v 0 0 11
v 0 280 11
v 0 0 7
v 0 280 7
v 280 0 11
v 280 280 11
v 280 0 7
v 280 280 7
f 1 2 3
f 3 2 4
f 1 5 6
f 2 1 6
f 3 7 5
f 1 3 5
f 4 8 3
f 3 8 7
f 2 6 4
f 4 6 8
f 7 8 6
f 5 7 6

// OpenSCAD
// file: lulzbot_generic_components.scad
$fn = 50;

module wiper(
	x = 10,
	y = 10,
	z = 3
) {
	translate([x, y, z]){
		import("wiper_mount_v1.1.stl");

		//wiper pad itself
		translate([5, 5, 0]){
			cube(size = [90, 6.5, 12.5], center = false);
		}
	}
}

module auto_leveling_bed_corner(
	x = 0,
	y = 0,
	z = 11,
	inner_radius = 1.7,
	outer_radius = 11,
	washer_thickness = 1.5,
	angle = 0
) {
	z_translation = 3.25;
	translate([x, y, 0]) {
		rotate(angle, v=[]) {
	
			//Washer
			translate([outer_radius, outer_radius, z]) {
				cylinder(
					h = washer_thickness,
					r1 = outer_radius,
					r2 = outer_radius,
					center = false);
			}
		
			//Pillar
			translate([outer_radius, outer_radius, 0]) {
				cylinder(
					h = z,
					r1 = inner_radius,
					r2 = inner_radius,
					center = false);
			}
			
			//Flexible bed corners
			translate([0, 0, z_translation]) {
				import("bed_corner_v2.7.stl", center = false);
			}
		}
	}
}

module print_surface(
	x = 10,
	y = 10,
	plate_thickness = 2,
	x_mov = 0,
	y_mov = 0,
	z_mov = 0
) {
	translate([x_mov, y_mov, z_mov]) {
		cube(size = [x, y, plate_thickness], center = false);
	}
}

module all_bed_corners(
	x = 50,
	y = 50,
	offset = 0
) {
	auto_leveling_bed_corner(0, 0, angle = 0);
	auto_leveling_bed_corner(x+offset, 0, angle = 90);
	auto_leveling_bed_corner(x+offset, y+offset, angle = 180);
	auto_leveling_bed_corner(0, y+offset, angle = 270);
}

separation = 30;
all_bed_corners();
print_surface(x_mov = -separation );
wiper(100, separation );
// main file
use <lulzbot_generic_components.scad>;

x = 280;
y = 280;
plate_thickness = 4;
print_surface(
	x = x,
	y = y,
	plate_thickness = 4,
	z_mov = 7
);
